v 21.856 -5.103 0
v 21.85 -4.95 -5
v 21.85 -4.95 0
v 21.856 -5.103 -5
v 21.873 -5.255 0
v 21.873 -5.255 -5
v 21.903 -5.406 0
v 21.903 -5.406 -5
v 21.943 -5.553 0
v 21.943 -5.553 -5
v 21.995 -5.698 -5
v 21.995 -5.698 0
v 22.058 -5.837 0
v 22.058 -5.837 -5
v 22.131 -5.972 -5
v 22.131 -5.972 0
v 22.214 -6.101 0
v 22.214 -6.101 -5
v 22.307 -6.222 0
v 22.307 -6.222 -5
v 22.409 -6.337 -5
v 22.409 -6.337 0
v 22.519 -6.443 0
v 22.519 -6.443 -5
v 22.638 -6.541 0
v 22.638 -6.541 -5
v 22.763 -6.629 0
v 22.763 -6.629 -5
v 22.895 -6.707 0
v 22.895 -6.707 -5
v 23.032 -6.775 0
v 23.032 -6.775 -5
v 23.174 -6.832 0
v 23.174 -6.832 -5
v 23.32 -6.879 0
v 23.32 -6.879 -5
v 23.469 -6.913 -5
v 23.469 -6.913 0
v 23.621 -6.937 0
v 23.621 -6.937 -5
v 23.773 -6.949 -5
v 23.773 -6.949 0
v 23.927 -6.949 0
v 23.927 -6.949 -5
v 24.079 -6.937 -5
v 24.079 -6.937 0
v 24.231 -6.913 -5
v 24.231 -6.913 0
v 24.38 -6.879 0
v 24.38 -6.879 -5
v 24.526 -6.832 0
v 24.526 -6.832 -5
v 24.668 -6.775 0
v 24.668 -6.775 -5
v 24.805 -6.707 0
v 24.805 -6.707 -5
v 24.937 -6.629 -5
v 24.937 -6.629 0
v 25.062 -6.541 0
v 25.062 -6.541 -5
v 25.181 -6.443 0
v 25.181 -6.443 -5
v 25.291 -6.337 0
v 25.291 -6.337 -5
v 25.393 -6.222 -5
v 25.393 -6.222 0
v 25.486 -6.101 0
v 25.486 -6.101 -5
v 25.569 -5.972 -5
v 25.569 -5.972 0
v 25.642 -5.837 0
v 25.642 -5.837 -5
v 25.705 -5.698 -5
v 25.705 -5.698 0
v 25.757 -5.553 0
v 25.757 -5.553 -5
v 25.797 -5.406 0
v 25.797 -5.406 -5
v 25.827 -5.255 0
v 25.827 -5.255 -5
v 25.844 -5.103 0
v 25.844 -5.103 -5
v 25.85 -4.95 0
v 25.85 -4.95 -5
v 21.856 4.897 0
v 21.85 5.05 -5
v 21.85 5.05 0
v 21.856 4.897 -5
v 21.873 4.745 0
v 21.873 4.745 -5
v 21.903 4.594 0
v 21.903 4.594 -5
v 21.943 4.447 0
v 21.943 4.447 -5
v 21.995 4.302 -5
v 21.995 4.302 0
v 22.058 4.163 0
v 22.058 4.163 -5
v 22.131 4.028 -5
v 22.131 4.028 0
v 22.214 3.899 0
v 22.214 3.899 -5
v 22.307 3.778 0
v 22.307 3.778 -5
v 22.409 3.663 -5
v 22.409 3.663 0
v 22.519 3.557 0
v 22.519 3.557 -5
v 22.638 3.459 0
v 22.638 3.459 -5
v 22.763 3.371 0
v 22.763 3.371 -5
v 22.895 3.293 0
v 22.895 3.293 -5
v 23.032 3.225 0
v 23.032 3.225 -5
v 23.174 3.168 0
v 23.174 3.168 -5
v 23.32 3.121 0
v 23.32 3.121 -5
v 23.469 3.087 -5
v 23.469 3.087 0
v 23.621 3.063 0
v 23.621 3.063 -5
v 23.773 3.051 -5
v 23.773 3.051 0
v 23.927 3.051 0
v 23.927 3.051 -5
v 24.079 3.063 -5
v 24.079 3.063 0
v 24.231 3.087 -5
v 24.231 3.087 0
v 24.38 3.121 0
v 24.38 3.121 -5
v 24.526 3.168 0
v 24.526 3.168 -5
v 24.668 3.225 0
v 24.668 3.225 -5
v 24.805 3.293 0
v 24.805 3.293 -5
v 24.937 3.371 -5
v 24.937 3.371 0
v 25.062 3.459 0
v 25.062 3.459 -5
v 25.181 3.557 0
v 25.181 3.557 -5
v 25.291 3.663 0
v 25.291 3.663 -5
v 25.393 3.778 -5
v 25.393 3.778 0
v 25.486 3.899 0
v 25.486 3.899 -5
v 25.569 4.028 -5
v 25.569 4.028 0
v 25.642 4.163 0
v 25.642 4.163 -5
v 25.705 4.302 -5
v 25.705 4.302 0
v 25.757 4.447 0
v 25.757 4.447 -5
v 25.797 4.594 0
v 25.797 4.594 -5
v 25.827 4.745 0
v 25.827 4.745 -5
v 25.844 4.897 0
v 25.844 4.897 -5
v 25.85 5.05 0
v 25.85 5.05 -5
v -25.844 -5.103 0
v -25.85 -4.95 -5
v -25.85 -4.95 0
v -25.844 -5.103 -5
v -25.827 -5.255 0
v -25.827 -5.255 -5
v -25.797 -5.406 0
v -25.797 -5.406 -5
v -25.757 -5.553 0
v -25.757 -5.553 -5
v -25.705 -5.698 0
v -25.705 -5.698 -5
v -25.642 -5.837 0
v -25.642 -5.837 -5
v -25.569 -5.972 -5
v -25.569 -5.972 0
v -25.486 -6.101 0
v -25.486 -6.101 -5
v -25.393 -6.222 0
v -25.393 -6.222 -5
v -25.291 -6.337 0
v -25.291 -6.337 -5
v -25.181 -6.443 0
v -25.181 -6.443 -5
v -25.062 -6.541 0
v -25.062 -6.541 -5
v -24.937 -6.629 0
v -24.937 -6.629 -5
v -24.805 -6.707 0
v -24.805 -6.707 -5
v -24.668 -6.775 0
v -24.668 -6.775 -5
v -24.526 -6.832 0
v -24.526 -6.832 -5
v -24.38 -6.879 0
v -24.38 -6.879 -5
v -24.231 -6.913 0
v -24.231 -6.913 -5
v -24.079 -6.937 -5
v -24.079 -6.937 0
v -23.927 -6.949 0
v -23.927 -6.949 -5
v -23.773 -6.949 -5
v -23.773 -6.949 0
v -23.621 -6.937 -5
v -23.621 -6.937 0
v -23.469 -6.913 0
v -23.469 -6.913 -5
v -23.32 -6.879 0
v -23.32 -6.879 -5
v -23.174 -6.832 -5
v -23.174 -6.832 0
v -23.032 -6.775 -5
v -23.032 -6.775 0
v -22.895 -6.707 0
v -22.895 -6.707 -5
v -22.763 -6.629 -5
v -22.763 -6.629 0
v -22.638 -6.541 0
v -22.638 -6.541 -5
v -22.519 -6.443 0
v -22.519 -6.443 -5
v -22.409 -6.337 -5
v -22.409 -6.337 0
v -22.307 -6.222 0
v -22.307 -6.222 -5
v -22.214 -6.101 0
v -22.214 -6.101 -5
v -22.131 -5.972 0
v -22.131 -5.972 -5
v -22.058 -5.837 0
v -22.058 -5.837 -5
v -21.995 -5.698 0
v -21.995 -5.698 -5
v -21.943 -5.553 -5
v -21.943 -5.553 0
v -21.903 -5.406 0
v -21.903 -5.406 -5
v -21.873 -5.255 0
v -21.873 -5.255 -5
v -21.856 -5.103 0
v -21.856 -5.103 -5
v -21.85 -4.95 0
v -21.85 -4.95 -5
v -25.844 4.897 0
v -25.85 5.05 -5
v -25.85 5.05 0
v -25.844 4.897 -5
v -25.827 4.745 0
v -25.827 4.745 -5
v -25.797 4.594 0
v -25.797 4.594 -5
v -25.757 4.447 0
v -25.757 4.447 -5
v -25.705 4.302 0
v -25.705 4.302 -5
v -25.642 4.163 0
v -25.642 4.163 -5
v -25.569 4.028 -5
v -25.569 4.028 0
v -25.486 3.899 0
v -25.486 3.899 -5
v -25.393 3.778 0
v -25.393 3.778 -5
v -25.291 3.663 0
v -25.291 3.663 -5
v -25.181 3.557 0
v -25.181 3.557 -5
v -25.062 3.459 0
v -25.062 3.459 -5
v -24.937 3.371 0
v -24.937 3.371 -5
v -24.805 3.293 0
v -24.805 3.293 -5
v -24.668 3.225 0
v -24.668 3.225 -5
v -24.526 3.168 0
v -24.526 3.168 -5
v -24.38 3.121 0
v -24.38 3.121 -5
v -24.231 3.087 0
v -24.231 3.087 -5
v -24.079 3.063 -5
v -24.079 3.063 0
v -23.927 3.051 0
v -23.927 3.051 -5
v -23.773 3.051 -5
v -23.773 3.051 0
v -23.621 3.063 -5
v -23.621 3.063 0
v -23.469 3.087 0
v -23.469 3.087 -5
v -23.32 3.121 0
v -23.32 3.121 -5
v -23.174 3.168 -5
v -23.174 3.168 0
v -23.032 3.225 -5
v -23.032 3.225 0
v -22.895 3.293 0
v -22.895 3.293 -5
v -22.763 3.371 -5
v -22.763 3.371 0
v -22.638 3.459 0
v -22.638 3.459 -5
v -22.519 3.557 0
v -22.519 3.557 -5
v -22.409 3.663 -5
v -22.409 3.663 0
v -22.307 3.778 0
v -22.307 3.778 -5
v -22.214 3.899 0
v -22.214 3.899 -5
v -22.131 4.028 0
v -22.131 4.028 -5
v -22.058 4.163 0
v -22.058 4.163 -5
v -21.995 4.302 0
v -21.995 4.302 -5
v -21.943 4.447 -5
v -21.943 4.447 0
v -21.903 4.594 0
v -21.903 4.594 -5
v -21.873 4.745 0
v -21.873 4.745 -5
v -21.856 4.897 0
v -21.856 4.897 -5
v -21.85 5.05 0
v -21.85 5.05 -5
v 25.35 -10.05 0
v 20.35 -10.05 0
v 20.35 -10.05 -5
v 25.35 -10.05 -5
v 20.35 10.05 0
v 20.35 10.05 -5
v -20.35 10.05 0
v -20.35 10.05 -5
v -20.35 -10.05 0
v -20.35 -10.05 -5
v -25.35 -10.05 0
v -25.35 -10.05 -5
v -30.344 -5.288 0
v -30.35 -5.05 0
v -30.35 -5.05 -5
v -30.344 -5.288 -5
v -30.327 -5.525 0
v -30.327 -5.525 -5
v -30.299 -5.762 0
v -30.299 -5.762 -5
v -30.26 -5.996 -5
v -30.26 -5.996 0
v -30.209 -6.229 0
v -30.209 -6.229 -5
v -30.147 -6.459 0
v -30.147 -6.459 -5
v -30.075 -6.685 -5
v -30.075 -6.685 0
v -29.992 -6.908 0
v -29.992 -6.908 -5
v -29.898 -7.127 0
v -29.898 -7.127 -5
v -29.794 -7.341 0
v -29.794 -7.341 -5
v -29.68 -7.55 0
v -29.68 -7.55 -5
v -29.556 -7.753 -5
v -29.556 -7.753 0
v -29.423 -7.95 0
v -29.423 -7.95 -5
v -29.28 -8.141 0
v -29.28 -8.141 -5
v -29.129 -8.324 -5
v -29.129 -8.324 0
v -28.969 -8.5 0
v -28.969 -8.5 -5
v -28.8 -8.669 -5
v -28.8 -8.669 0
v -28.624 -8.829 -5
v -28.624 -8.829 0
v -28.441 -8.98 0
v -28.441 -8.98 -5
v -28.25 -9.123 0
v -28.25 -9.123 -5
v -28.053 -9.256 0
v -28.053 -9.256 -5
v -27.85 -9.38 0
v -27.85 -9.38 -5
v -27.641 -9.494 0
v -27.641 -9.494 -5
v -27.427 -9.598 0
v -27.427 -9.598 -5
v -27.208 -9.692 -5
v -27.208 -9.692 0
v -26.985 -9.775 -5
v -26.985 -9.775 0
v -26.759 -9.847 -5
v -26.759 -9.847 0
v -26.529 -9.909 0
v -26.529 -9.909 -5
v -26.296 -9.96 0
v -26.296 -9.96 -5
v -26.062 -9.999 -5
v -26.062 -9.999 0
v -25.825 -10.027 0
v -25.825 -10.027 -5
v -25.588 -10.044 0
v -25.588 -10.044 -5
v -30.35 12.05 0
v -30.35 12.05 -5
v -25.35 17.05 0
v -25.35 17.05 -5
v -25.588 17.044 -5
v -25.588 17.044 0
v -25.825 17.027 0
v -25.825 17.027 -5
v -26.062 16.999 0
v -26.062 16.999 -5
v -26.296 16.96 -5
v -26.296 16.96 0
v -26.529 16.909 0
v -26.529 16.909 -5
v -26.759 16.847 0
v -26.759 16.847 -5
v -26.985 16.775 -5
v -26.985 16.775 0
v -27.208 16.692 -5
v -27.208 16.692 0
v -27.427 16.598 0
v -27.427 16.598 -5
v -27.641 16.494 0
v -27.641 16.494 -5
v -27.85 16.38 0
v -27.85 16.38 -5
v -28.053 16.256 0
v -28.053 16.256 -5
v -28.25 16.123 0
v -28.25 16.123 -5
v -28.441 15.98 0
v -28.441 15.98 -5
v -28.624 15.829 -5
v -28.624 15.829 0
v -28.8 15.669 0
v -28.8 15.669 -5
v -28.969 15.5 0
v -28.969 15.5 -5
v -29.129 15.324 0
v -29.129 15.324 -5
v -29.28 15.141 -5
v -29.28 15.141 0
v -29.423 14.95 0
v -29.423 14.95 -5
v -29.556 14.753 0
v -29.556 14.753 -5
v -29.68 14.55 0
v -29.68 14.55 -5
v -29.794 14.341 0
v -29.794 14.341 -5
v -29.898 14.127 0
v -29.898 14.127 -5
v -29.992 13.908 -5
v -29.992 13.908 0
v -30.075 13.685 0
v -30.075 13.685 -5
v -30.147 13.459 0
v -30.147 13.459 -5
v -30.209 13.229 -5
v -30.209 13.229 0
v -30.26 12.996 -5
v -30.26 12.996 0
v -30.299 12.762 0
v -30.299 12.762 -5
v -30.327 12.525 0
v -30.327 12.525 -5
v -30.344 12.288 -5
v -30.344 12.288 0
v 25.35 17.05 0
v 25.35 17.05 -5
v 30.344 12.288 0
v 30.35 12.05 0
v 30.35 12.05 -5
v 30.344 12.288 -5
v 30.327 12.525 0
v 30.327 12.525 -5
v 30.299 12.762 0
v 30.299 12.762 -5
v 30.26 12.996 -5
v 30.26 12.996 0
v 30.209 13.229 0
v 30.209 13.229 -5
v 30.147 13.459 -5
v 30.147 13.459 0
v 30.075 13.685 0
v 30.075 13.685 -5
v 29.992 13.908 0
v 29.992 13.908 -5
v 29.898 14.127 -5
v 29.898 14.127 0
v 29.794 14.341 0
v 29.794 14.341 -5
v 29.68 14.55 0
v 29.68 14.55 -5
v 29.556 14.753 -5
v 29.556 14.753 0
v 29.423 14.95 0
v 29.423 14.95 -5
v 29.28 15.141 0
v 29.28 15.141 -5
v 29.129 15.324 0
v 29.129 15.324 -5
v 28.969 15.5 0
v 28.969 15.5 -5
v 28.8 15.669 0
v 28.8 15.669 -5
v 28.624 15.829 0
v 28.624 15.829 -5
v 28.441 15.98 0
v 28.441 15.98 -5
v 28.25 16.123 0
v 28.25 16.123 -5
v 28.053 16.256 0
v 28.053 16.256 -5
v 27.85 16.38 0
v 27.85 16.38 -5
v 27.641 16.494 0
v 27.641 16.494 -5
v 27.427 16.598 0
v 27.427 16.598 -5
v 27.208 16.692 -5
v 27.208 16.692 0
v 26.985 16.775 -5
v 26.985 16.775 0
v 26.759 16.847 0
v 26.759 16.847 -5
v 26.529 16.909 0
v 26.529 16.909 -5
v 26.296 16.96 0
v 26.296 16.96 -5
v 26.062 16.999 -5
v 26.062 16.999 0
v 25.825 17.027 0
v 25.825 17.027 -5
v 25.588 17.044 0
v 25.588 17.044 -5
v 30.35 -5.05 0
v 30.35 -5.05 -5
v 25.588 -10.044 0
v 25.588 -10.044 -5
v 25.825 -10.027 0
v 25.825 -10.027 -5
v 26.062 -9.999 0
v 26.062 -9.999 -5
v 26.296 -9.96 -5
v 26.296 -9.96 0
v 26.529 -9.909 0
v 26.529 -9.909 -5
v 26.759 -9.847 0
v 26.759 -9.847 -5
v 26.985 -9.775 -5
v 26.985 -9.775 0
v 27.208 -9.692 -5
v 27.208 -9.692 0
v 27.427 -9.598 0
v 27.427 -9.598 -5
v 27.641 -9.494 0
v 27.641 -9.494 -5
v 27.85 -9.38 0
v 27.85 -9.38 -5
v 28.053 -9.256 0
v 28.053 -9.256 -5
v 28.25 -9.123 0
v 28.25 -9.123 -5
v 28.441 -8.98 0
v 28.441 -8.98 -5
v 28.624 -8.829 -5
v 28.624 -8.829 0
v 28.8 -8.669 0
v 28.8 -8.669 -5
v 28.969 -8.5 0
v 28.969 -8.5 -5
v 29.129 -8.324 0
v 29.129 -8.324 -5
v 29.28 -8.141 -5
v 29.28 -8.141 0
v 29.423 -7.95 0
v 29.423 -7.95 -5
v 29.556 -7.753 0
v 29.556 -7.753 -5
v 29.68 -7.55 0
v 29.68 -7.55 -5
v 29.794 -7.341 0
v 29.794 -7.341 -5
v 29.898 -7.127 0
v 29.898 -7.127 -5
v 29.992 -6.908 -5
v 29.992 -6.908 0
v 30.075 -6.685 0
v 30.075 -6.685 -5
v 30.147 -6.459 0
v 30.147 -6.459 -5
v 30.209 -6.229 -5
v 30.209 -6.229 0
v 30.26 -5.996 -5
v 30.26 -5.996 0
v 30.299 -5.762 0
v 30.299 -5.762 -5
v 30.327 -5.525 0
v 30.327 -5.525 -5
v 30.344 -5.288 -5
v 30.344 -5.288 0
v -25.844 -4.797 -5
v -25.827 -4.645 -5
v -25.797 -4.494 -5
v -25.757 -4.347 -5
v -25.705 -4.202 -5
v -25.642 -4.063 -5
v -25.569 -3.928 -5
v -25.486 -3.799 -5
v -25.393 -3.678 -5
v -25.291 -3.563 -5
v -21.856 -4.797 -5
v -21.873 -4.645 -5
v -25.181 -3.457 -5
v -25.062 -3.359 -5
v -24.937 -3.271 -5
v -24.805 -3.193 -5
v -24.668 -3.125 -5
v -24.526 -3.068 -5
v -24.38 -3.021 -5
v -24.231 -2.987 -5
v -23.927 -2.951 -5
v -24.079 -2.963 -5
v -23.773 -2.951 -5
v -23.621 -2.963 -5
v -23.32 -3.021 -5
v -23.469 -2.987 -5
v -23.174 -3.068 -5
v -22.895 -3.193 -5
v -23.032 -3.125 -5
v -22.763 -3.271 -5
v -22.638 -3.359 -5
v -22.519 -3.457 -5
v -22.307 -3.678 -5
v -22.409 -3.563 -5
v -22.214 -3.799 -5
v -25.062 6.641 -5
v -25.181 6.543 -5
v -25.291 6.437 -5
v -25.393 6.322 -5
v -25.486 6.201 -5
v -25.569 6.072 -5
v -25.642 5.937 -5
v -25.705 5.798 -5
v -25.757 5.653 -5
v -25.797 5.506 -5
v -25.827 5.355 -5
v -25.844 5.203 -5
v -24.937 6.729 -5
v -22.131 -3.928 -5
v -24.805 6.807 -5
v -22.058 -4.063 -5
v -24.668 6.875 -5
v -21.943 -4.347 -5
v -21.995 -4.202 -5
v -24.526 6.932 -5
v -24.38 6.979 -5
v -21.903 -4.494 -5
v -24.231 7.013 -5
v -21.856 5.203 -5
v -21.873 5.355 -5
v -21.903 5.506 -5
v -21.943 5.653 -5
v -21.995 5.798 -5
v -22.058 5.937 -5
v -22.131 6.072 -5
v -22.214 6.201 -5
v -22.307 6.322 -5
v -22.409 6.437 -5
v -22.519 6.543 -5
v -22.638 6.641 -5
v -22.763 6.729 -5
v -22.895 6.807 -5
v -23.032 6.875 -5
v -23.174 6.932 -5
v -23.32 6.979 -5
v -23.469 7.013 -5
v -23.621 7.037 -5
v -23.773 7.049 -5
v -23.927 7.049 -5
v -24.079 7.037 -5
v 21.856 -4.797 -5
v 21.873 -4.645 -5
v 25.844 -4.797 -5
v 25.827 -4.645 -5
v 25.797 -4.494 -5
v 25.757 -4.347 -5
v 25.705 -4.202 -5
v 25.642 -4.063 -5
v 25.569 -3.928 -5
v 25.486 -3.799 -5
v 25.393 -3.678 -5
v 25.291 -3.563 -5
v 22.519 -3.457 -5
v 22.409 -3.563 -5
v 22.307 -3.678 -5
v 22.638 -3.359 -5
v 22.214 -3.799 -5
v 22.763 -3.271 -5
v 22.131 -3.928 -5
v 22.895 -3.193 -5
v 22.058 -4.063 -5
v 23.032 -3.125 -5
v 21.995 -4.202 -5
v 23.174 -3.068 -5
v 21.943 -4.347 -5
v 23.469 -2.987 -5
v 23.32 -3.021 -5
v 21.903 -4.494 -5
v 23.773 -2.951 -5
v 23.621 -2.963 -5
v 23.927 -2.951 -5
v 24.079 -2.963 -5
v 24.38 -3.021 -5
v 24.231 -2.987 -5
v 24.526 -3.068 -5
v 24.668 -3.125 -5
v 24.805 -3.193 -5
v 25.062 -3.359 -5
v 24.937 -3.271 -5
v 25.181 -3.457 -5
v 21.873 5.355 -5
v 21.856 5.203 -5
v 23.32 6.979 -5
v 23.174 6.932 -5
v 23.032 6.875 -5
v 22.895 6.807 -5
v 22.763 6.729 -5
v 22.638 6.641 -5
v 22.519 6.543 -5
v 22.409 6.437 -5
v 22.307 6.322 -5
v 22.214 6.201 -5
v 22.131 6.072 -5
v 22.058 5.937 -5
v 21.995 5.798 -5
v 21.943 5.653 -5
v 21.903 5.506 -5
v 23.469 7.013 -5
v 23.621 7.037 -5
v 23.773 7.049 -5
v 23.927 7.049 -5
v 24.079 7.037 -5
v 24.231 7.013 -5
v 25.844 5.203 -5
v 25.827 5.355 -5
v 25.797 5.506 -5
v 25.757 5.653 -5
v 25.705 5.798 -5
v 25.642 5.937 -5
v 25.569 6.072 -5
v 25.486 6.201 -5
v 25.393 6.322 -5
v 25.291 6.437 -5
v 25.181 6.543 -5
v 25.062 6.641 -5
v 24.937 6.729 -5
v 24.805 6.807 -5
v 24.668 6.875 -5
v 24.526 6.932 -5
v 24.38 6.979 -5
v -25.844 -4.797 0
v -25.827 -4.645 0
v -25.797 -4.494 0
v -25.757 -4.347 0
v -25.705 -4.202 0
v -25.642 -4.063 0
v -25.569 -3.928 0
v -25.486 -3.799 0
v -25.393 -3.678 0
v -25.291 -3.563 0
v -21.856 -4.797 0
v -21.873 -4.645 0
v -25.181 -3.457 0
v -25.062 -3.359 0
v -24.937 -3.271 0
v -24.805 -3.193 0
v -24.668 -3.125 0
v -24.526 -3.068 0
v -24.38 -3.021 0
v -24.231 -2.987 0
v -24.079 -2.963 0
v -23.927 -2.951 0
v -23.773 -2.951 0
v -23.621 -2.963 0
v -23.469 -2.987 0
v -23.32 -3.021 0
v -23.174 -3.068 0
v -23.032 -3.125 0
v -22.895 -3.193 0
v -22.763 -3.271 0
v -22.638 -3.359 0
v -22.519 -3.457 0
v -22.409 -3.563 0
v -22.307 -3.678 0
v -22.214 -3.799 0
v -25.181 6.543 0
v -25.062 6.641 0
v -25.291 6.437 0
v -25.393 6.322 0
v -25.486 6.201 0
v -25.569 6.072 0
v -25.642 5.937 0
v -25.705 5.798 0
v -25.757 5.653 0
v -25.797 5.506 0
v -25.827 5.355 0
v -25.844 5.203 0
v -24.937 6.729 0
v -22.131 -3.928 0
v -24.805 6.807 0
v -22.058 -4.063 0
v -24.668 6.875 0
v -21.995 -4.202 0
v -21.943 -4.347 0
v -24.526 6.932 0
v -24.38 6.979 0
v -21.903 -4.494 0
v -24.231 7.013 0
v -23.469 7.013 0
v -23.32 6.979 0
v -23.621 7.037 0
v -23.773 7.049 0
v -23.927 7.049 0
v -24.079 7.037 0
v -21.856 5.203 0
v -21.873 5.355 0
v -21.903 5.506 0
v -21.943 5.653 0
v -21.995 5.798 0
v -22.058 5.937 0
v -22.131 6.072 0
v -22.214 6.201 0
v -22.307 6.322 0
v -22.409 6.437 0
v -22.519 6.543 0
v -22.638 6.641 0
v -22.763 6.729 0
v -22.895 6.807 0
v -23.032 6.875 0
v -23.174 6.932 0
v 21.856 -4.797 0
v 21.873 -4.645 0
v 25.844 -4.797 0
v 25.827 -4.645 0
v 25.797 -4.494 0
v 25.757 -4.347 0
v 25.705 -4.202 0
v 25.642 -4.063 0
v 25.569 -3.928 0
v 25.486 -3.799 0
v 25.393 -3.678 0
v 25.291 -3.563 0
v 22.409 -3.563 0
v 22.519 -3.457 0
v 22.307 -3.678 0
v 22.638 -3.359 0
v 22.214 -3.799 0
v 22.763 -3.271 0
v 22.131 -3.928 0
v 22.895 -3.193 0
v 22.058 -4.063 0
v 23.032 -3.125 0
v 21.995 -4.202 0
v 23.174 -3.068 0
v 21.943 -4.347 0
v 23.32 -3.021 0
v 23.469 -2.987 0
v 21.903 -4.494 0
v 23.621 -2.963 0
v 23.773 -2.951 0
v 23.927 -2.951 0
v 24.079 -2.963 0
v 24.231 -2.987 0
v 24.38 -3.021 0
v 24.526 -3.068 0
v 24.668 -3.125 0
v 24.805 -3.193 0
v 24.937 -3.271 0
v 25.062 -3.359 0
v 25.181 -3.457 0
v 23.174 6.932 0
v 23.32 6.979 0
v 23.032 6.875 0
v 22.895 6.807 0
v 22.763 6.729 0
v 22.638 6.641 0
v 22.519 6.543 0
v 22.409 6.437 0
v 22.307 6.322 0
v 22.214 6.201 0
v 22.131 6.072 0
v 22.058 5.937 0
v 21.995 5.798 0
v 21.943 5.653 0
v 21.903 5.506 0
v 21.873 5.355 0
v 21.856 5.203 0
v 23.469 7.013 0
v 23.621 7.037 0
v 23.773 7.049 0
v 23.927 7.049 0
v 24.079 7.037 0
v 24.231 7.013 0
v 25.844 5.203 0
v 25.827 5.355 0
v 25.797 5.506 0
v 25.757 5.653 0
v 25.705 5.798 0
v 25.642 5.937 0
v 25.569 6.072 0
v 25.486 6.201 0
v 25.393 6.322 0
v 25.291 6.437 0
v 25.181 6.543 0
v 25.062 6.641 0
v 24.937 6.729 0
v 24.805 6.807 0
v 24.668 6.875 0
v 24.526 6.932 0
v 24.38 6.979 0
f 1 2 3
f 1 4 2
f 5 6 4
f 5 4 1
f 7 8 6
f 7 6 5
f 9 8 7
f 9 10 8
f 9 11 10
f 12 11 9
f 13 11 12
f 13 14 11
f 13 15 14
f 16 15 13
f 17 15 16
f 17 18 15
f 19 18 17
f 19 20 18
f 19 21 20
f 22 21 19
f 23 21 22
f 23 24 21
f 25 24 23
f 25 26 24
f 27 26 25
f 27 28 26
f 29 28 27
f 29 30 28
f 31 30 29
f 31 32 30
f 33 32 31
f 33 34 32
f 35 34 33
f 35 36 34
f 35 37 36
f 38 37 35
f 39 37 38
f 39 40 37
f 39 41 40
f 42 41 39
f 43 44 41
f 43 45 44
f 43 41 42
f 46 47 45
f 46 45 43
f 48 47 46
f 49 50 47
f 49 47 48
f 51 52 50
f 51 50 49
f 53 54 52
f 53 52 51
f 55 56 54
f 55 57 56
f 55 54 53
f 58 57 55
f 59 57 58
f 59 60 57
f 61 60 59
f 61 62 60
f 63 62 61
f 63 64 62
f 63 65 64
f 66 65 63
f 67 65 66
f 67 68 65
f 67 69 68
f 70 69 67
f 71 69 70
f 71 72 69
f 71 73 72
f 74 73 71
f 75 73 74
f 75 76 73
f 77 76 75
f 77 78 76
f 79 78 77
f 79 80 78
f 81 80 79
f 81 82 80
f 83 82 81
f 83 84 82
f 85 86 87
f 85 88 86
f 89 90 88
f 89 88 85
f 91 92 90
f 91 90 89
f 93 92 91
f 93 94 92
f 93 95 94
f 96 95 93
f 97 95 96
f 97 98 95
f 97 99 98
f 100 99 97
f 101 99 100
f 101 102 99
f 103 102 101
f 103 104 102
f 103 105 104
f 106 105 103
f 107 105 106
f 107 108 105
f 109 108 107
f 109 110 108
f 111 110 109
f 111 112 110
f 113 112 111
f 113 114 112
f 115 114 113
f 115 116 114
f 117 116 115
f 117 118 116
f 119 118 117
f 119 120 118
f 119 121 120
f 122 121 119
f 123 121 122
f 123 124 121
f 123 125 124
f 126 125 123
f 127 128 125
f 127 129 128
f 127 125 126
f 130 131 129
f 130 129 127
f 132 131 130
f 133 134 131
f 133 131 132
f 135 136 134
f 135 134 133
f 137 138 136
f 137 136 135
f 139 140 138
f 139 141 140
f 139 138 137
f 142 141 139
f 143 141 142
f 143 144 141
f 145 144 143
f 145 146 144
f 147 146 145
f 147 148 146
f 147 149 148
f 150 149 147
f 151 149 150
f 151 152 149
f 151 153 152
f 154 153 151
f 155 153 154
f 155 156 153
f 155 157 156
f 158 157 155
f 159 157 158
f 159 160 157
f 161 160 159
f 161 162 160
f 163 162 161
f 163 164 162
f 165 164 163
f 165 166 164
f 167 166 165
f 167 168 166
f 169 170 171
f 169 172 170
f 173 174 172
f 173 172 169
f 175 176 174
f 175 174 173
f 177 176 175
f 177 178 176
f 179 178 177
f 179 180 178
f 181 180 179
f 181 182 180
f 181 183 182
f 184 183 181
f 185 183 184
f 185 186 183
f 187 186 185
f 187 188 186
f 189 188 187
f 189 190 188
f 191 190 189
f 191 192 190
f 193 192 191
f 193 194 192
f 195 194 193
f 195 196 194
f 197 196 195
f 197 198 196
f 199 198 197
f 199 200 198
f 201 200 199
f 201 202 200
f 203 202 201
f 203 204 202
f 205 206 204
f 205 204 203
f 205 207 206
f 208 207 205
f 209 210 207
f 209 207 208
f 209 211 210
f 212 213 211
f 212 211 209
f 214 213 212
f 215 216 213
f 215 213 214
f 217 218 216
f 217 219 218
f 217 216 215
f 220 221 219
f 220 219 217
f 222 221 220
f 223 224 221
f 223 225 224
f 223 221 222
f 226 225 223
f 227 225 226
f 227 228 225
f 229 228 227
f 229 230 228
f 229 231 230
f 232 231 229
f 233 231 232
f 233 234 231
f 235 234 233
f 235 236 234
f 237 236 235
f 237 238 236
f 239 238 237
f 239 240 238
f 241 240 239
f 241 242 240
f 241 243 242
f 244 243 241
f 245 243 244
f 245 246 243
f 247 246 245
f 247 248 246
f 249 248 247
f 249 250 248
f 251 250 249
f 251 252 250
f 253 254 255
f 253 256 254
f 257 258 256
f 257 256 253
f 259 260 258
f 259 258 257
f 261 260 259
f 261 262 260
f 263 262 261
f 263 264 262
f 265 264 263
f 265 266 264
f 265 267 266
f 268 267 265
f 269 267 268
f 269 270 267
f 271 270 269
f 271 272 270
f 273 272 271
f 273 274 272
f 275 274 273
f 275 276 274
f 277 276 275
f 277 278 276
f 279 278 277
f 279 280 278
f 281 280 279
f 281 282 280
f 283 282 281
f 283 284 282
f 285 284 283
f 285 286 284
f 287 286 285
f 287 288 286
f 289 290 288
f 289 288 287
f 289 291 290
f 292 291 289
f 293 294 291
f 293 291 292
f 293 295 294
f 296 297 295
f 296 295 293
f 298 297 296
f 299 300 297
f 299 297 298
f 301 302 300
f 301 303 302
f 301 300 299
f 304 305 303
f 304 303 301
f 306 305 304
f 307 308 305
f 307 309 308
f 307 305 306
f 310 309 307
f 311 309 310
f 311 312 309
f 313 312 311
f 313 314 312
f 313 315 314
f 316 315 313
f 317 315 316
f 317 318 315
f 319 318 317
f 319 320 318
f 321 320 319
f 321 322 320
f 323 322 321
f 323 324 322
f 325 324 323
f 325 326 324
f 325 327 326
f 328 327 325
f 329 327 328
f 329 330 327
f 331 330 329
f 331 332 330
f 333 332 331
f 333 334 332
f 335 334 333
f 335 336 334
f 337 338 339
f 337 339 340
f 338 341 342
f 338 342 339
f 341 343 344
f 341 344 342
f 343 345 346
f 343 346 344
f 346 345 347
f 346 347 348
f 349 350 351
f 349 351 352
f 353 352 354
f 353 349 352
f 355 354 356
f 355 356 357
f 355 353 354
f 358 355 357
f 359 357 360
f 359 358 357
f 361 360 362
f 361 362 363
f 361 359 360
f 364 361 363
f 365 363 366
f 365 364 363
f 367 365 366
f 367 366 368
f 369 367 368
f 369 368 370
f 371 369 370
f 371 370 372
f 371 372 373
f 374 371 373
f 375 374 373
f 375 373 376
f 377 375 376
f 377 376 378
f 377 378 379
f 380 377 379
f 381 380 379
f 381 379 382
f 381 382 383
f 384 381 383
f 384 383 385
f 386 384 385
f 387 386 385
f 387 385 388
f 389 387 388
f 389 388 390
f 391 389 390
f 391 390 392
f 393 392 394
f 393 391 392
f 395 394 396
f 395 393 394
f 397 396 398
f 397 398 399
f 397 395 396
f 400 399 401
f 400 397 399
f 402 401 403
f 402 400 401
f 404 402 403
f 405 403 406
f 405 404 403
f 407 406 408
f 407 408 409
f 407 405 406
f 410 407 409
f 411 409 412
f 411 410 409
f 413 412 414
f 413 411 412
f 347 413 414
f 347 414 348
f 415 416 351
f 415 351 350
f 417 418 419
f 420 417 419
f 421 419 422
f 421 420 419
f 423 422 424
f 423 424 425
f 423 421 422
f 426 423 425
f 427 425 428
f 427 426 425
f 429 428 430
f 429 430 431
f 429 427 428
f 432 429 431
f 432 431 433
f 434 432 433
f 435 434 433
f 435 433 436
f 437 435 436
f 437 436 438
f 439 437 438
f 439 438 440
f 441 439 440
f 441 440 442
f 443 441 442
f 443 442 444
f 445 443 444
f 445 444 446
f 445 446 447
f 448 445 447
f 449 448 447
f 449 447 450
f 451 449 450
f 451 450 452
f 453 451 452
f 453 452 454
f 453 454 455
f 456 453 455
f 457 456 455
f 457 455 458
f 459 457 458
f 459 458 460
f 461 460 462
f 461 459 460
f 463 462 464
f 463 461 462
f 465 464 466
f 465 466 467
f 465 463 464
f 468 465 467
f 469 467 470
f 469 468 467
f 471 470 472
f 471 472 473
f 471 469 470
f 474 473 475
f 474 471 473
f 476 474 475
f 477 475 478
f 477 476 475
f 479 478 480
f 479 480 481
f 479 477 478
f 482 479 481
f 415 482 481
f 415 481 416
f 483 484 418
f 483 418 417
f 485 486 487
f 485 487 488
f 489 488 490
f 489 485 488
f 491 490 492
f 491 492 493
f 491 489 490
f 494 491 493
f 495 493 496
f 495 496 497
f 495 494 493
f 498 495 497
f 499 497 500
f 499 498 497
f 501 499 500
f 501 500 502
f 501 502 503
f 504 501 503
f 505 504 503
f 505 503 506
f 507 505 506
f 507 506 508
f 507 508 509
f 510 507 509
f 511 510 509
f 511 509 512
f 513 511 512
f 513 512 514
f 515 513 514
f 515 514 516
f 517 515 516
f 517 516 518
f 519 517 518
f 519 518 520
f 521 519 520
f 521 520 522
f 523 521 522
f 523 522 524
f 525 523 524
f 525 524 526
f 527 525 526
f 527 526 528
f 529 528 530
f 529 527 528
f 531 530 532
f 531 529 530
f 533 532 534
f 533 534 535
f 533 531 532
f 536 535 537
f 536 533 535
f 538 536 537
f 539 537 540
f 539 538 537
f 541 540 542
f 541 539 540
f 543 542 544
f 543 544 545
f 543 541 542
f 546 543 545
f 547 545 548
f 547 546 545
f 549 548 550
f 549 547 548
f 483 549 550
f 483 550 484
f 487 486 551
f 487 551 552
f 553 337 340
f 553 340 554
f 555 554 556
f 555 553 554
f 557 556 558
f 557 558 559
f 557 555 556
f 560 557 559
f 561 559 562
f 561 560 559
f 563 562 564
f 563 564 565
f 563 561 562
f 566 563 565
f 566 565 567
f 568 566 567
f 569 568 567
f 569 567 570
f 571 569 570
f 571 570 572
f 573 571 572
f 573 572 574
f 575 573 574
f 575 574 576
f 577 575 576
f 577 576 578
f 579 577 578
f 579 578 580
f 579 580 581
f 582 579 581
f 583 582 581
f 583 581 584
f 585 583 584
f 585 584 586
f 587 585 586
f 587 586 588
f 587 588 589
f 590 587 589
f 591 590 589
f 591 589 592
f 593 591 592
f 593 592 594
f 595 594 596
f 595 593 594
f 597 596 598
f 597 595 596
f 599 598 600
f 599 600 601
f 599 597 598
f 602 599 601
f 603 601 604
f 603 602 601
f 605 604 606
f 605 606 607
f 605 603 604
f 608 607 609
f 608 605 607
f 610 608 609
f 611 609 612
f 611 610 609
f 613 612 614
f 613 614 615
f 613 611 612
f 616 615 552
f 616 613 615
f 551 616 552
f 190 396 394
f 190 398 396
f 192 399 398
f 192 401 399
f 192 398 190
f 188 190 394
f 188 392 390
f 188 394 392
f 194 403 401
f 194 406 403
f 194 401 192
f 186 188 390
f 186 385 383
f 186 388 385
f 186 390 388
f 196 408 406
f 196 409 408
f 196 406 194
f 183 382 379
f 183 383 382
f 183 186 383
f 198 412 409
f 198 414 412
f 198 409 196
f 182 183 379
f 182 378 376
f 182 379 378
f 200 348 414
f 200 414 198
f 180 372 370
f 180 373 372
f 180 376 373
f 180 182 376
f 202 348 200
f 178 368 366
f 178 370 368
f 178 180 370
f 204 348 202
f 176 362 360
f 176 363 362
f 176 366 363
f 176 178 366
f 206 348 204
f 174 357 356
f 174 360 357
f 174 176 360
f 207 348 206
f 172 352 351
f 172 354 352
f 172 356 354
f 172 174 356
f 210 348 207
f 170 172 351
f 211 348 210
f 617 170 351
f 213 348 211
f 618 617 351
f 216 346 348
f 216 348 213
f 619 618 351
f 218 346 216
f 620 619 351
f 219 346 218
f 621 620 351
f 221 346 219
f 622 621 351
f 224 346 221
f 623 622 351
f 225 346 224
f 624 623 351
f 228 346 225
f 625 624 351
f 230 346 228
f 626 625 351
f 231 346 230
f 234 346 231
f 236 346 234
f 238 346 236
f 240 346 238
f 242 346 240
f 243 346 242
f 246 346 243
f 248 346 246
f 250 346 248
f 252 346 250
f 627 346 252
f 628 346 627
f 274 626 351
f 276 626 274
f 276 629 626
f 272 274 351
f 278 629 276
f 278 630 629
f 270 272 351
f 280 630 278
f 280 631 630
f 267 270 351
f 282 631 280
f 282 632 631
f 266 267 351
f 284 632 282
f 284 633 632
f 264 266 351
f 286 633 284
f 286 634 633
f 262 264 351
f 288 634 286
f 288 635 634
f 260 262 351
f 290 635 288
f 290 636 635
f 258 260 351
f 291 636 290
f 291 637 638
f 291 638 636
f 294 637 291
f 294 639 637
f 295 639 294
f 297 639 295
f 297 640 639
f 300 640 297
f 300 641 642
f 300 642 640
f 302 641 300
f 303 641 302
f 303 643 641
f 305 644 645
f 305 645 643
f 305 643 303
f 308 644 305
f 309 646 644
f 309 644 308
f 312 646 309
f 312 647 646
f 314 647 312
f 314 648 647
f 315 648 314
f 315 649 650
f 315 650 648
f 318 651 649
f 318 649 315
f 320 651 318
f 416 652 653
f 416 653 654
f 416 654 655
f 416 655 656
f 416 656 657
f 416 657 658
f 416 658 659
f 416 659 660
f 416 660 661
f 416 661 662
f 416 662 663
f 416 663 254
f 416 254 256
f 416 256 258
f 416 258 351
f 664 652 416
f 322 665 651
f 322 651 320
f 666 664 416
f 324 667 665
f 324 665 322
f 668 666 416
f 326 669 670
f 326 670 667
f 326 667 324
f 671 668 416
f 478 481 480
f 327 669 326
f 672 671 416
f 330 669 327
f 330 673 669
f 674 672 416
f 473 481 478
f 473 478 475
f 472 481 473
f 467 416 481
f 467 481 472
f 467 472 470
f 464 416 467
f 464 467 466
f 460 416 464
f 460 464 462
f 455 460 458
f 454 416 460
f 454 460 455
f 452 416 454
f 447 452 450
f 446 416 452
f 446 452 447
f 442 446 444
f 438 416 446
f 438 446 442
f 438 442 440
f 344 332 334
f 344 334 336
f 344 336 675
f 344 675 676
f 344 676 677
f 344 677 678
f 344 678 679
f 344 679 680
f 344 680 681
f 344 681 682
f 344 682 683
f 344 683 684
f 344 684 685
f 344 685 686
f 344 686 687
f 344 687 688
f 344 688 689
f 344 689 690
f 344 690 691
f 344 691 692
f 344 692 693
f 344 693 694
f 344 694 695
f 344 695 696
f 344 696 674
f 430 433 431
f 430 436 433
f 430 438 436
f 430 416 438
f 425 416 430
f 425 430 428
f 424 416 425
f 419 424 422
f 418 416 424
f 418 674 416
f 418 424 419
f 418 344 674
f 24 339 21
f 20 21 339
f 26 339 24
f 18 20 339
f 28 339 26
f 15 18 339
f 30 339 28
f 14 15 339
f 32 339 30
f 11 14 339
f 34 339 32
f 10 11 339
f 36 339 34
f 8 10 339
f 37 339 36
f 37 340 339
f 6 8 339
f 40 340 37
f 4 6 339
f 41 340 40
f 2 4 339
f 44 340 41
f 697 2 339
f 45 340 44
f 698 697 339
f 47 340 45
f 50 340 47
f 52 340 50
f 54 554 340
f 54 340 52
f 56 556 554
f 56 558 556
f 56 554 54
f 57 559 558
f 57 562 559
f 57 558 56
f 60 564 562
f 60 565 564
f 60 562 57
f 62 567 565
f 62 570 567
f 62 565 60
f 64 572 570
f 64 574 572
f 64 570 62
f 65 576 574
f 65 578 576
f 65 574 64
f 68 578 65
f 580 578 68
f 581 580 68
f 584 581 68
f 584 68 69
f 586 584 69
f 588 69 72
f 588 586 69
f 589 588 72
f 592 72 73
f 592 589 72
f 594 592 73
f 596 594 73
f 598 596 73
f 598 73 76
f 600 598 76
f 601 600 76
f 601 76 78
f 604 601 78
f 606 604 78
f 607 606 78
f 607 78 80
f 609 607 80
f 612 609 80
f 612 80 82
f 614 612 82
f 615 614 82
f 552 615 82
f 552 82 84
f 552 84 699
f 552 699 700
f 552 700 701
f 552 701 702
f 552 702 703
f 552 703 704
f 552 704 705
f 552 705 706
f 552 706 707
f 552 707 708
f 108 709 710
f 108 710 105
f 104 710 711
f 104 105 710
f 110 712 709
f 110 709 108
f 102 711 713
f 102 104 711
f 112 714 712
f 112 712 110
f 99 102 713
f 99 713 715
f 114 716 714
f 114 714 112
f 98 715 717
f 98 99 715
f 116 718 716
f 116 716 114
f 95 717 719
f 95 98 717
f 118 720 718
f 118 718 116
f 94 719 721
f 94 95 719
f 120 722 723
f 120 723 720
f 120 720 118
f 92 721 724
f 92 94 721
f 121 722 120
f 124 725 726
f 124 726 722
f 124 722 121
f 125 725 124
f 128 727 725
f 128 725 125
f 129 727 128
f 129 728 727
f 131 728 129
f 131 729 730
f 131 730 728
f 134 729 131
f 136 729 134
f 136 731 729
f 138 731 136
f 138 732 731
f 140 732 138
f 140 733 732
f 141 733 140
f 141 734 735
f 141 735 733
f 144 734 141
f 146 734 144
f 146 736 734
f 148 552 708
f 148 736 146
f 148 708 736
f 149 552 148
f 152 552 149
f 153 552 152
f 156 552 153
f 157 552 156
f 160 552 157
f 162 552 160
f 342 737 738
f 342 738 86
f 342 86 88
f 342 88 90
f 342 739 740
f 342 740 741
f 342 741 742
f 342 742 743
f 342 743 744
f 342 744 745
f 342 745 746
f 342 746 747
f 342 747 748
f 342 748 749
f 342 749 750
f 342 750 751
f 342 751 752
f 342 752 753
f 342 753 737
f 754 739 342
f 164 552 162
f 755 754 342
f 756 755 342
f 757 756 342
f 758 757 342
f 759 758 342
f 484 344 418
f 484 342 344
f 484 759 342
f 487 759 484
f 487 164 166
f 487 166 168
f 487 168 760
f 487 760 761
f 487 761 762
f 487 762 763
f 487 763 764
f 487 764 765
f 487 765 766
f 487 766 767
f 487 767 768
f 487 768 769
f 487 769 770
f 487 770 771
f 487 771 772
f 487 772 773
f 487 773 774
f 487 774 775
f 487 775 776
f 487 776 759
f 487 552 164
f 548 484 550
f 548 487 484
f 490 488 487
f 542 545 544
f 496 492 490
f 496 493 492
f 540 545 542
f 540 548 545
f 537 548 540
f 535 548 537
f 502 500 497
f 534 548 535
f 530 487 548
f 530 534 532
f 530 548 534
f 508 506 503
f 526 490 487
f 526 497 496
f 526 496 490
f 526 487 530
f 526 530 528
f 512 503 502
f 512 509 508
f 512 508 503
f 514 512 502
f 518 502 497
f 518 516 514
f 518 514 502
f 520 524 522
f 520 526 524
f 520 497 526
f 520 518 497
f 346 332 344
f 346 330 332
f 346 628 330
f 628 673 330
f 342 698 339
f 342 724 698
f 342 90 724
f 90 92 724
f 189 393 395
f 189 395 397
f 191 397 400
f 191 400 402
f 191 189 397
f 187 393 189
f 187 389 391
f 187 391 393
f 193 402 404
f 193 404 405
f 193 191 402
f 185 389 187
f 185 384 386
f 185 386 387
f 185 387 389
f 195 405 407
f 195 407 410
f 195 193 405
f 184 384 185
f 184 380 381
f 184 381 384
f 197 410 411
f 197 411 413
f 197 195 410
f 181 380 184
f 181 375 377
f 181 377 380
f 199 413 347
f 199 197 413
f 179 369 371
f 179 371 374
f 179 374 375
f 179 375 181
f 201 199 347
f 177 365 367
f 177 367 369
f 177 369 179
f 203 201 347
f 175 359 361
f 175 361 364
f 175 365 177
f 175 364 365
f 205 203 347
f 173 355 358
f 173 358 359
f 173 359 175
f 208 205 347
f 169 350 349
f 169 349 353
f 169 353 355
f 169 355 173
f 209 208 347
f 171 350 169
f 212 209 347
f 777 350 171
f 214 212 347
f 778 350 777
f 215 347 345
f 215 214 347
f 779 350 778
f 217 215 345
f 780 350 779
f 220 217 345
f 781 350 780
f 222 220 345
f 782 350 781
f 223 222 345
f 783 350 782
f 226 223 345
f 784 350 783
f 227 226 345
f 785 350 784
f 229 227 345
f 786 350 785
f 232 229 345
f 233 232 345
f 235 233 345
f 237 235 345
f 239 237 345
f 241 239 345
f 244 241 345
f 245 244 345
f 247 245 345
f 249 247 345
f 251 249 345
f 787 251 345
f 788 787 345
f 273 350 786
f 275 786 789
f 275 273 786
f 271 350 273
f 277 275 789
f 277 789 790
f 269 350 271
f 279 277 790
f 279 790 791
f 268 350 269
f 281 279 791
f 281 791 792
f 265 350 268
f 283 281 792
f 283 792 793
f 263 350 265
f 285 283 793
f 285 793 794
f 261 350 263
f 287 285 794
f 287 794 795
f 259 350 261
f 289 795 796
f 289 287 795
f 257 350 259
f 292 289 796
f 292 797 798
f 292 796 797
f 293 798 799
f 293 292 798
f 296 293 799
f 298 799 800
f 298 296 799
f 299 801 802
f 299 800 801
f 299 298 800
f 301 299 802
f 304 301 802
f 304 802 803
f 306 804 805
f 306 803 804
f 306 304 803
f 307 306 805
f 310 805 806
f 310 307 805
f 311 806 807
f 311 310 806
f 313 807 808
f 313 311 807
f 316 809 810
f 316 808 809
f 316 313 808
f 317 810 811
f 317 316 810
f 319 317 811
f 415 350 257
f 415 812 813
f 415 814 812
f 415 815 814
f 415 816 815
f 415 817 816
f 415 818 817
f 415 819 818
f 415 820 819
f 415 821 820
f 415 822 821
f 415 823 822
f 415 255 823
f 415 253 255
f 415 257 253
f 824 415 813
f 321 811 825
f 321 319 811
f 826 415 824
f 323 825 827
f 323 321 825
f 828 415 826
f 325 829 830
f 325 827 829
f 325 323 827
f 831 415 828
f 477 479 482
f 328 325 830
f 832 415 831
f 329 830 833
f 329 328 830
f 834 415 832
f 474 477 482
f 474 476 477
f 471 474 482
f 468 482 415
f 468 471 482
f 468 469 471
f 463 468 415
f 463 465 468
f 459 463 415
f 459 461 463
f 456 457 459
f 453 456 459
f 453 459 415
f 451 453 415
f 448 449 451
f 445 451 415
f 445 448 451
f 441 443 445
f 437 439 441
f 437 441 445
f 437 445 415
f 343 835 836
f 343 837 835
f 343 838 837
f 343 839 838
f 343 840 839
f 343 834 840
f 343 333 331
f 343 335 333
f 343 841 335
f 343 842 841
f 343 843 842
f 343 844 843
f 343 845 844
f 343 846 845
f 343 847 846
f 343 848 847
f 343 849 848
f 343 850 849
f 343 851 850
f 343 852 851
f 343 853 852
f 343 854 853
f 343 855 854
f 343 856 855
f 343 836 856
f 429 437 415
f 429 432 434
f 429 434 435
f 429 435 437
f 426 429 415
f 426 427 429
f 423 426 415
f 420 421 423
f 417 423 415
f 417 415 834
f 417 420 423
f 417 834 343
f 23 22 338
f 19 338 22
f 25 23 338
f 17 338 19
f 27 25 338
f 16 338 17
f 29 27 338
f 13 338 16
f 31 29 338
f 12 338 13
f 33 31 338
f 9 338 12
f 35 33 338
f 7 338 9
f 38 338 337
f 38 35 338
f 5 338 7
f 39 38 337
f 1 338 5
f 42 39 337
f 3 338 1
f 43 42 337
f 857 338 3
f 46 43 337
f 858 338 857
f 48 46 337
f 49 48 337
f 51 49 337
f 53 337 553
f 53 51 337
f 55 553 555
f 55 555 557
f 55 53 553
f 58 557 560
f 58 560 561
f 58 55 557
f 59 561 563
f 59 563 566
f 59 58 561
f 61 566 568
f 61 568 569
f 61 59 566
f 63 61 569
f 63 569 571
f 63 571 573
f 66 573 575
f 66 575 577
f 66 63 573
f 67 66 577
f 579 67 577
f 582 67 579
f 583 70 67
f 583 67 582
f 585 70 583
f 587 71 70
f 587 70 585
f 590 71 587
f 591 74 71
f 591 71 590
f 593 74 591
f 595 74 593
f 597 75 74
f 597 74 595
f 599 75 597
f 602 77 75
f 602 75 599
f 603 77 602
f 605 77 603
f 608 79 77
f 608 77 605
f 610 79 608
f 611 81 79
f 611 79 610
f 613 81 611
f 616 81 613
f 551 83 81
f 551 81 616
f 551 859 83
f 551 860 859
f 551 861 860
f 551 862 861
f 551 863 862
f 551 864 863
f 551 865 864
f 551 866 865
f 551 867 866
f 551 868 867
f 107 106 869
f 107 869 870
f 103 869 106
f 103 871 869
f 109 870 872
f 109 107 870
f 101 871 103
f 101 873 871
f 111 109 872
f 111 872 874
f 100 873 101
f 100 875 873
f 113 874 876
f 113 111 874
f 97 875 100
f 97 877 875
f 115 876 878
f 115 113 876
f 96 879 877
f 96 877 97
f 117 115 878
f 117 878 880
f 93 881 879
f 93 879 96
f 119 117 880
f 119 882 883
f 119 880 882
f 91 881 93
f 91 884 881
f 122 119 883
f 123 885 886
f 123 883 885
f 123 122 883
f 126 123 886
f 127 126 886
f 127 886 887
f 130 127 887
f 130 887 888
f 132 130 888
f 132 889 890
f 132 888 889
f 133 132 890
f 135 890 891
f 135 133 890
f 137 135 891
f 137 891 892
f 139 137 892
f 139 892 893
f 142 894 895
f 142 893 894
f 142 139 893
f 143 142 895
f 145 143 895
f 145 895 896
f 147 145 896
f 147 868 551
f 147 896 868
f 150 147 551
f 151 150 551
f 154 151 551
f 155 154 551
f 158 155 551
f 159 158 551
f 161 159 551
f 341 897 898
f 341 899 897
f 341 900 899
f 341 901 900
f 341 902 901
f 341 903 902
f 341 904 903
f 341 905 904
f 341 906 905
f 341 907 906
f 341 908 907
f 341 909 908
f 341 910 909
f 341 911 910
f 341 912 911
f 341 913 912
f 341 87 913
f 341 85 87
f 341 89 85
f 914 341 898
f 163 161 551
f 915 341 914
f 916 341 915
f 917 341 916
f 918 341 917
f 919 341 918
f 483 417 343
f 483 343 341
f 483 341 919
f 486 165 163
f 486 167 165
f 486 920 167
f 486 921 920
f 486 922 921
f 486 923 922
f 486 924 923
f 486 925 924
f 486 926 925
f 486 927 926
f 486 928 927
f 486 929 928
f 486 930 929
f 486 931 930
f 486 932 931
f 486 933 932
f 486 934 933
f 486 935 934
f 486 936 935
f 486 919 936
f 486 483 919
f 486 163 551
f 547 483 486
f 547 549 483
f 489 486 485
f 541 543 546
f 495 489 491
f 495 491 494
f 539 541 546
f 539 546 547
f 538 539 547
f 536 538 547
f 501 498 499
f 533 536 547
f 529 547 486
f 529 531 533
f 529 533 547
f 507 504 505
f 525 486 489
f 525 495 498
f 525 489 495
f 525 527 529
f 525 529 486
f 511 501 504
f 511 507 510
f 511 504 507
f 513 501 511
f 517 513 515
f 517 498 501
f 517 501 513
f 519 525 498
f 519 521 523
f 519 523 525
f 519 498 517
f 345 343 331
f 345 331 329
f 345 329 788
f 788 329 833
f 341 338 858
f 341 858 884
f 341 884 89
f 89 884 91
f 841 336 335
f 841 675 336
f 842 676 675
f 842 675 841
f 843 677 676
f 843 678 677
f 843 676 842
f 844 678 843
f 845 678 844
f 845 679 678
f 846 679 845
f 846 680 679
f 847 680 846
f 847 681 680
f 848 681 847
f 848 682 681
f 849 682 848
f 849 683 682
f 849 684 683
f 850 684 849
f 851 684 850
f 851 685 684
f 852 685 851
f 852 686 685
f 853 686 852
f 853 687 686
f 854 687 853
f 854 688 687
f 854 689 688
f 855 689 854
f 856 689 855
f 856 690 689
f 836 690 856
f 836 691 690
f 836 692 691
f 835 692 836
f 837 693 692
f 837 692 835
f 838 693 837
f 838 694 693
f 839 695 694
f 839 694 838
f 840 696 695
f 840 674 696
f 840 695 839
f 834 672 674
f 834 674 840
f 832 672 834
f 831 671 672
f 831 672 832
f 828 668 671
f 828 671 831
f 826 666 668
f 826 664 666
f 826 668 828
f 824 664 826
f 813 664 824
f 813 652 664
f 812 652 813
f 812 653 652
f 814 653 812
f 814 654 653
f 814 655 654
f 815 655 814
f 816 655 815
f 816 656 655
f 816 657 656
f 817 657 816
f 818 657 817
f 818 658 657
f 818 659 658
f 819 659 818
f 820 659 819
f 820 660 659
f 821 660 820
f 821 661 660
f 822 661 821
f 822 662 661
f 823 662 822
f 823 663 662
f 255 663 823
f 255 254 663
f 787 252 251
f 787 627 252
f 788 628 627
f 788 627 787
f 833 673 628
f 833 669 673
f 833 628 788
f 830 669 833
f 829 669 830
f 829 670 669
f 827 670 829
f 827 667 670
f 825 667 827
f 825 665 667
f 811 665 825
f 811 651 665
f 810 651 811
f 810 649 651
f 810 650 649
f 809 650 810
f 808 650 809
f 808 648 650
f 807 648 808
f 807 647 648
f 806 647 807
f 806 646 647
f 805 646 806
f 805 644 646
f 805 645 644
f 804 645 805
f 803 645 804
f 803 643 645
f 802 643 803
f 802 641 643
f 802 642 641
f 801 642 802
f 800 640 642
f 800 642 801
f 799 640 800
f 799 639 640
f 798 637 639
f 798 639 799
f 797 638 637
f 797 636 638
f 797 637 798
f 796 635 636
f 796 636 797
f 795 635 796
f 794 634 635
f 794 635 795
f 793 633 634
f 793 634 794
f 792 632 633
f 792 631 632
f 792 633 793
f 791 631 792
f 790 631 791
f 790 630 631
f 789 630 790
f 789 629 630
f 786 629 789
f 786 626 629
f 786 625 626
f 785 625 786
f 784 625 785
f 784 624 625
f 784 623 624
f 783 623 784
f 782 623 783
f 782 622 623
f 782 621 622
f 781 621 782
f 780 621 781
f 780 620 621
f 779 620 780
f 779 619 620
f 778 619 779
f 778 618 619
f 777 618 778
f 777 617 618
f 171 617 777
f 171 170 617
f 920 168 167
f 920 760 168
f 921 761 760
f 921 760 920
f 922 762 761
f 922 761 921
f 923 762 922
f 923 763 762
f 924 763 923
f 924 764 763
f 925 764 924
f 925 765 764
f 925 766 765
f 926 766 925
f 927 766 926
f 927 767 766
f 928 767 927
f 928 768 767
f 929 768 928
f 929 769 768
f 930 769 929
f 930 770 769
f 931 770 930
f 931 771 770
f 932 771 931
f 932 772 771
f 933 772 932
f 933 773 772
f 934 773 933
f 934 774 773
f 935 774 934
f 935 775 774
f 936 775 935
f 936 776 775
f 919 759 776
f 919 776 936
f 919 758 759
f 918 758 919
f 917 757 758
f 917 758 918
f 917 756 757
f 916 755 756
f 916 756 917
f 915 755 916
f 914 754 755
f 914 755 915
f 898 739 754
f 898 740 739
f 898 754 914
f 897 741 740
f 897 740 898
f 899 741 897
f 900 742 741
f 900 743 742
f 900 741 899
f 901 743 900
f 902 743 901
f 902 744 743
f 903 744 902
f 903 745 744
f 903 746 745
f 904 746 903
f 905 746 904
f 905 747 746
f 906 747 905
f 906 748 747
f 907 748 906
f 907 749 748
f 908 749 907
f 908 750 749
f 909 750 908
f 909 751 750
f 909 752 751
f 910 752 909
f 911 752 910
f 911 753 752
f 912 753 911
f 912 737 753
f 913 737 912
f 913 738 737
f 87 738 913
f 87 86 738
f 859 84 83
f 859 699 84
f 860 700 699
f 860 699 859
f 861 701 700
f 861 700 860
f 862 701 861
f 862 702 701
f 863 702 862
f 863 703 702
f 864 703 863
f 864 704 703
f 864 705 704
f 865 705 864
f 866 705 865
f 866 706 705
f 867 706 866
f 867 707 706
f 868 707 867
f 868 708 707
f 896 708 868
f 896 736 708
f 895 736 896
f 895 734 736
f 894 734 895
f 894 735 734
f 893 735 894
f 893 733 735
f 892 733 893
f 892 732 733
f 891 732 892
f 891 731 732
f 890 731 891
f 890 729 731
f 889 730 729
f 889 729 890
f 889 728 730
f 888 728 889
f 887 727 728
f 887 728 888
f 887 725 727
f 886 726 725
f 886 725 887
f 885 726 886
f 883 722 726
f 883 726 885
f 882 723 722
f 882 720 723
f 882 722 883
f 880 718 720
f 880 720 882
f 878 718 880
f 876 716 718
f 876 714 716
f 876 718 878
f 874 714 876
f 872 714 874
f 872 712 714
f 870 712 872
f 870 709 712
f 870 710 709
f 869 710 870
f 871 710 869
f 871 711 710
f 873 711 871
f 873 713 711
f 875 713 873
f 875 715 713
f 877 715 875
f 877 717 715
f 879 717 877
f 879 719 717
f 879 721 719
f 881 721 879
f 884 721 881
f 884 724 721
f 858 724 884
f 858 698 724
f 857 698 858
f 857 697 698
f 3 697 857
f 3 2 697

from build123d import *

# Parameters (mm, degrees)
SKETCH1_R           = 2
BOSS_EXTRUDE1_DEPTH = 5


with BuildPart() as part:
    # Sketch1 → Boss-Extrude1 (new body)
    with BuildSketch(Plane(origin=(0, 0, 0), x_dir=(0, 1, 0), z_dir=(0, 0, 1))):
        with BuildLine():
            Line((-10.05, 20.35), (10.05, 20.35))
            Line((10.05, 20.35), (10.05, -20.35))
            Line((10.05, -20.35), (-10.05, -20.35))
            Line((-10.05, -20.35), (-10.05, -25.35))
            ThreePointArc((-10.05, -25.35), (-8.585533906, -28.885533906), (-5.05, -30.35))
            Line((-5.05, -30.35), (12.05, -30.35))
            ThreePointArc((12.05, -30.35), (15.585533906, -28.885533906), (17.05, -25.35))
            Line((17.05, -25.35), (17.05, 25.35))
            ThreePointArc((17.05, 25.35), (15.585533906, 28.885533906), (12.05, 30.35))
            Line((12.05, 30.35), (-5.05, 30.35))
            ThreePointArc((-5.05, 30.35), (-8.585533906, 28.885533906), (-10.05, 25.35))
            Line((-10.05, 25.35), (-10.05, 20.35))
        make_face()
        with Locations(Location((5.05, 23.85, 0), (0, 0, 270))):
            Circle(SKETCH1_R, mode=Mode.SUBTRACT)
        with Locations(Location((-4.95, 23.85, 0), (0, 0, 270))):
            Circle(SKETCH1_R, mode=Mode.SUBTRACT)
        with Locations(Location((5.05, -23.85, 0), (0, 0, 90))):
            Circle(SKETCH1_R, mode=Mode.SUBTRACT)
        with Locations(Location((-4.95, -23.85, 0), (0, 0, 90))):
            Circle(SKETCH1_R, mode=Mode.SUBTRACT)
    extrude(amount=-BOSS_EXTRUDE1_DEPTH)


solid = part.part
